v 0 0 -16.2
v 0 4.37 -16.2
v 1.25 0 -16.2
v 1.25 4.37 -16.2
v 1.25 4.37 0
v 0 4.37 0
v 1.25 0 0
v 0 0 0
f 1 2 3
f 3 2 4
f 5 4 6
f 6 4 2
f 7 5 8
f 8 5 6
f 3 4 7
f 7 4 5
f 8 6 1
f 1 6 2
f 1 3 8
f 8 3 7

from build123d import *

# Parameters (mm, degrees)
BOSS_EXTRUDE1_DEPTH = 1.25
SKETCH2_W           = 16.2
SKETCH2_H           = 13.83
CUT_EXTRUDE1_DEPTH  = 1.25
SKETCH3_W           = 1.25
SKETCH3_H           = 16.2
BOSS_EXTRUDE2_DEPTH = 0.4


with BuildPart() as part:
    # Sketch1 → Boss-Extrude1 (new body)
    with BuildSketch(Plane(origin=(0, 0, 0), x_dir=(0, 0, -1), z_dir=(1, 0, 0))):
        Polygon((0, 0), (16.2, 0), (16.2, 17.8), (15.6, 17.8), (15.6, 3.97), (0.6, 3.97), (0.6, 17.8), (0, 17.8), align=None)
    extrude(amount=BOSS_EXTRUDE1_DEPTH)

    # Sketch2 → Cut-Extrude1 (cut)
    with BuildSketch(Plane(origin=(1.25, 0, 0), x_dir=(0, 0, -1), z_dir=(1, 0, 0))):
        with Locations((8.1, 10.885)):
            Rectangle(SKETCH2_W, SKETCH2_H)
    extrude(amount=-CUT_EXTRUDE1_DEPTH, mode=Mode.SUBTRACT)

    # Sketch3 → Boss-Extrude2 (add)
    with BuildSketch(Plane(origin=(0, 3.97, 0), x_dir=(1, 0, 0), z_dir=(0, 1, 0))):
        with Locations((0.625, 8.1)):
            Rectangle(SKETCH3_W, SKETCH3_H)
    extrude(amount=BOSS_EXTRUDE2_DEPTH)


solid = part.part
